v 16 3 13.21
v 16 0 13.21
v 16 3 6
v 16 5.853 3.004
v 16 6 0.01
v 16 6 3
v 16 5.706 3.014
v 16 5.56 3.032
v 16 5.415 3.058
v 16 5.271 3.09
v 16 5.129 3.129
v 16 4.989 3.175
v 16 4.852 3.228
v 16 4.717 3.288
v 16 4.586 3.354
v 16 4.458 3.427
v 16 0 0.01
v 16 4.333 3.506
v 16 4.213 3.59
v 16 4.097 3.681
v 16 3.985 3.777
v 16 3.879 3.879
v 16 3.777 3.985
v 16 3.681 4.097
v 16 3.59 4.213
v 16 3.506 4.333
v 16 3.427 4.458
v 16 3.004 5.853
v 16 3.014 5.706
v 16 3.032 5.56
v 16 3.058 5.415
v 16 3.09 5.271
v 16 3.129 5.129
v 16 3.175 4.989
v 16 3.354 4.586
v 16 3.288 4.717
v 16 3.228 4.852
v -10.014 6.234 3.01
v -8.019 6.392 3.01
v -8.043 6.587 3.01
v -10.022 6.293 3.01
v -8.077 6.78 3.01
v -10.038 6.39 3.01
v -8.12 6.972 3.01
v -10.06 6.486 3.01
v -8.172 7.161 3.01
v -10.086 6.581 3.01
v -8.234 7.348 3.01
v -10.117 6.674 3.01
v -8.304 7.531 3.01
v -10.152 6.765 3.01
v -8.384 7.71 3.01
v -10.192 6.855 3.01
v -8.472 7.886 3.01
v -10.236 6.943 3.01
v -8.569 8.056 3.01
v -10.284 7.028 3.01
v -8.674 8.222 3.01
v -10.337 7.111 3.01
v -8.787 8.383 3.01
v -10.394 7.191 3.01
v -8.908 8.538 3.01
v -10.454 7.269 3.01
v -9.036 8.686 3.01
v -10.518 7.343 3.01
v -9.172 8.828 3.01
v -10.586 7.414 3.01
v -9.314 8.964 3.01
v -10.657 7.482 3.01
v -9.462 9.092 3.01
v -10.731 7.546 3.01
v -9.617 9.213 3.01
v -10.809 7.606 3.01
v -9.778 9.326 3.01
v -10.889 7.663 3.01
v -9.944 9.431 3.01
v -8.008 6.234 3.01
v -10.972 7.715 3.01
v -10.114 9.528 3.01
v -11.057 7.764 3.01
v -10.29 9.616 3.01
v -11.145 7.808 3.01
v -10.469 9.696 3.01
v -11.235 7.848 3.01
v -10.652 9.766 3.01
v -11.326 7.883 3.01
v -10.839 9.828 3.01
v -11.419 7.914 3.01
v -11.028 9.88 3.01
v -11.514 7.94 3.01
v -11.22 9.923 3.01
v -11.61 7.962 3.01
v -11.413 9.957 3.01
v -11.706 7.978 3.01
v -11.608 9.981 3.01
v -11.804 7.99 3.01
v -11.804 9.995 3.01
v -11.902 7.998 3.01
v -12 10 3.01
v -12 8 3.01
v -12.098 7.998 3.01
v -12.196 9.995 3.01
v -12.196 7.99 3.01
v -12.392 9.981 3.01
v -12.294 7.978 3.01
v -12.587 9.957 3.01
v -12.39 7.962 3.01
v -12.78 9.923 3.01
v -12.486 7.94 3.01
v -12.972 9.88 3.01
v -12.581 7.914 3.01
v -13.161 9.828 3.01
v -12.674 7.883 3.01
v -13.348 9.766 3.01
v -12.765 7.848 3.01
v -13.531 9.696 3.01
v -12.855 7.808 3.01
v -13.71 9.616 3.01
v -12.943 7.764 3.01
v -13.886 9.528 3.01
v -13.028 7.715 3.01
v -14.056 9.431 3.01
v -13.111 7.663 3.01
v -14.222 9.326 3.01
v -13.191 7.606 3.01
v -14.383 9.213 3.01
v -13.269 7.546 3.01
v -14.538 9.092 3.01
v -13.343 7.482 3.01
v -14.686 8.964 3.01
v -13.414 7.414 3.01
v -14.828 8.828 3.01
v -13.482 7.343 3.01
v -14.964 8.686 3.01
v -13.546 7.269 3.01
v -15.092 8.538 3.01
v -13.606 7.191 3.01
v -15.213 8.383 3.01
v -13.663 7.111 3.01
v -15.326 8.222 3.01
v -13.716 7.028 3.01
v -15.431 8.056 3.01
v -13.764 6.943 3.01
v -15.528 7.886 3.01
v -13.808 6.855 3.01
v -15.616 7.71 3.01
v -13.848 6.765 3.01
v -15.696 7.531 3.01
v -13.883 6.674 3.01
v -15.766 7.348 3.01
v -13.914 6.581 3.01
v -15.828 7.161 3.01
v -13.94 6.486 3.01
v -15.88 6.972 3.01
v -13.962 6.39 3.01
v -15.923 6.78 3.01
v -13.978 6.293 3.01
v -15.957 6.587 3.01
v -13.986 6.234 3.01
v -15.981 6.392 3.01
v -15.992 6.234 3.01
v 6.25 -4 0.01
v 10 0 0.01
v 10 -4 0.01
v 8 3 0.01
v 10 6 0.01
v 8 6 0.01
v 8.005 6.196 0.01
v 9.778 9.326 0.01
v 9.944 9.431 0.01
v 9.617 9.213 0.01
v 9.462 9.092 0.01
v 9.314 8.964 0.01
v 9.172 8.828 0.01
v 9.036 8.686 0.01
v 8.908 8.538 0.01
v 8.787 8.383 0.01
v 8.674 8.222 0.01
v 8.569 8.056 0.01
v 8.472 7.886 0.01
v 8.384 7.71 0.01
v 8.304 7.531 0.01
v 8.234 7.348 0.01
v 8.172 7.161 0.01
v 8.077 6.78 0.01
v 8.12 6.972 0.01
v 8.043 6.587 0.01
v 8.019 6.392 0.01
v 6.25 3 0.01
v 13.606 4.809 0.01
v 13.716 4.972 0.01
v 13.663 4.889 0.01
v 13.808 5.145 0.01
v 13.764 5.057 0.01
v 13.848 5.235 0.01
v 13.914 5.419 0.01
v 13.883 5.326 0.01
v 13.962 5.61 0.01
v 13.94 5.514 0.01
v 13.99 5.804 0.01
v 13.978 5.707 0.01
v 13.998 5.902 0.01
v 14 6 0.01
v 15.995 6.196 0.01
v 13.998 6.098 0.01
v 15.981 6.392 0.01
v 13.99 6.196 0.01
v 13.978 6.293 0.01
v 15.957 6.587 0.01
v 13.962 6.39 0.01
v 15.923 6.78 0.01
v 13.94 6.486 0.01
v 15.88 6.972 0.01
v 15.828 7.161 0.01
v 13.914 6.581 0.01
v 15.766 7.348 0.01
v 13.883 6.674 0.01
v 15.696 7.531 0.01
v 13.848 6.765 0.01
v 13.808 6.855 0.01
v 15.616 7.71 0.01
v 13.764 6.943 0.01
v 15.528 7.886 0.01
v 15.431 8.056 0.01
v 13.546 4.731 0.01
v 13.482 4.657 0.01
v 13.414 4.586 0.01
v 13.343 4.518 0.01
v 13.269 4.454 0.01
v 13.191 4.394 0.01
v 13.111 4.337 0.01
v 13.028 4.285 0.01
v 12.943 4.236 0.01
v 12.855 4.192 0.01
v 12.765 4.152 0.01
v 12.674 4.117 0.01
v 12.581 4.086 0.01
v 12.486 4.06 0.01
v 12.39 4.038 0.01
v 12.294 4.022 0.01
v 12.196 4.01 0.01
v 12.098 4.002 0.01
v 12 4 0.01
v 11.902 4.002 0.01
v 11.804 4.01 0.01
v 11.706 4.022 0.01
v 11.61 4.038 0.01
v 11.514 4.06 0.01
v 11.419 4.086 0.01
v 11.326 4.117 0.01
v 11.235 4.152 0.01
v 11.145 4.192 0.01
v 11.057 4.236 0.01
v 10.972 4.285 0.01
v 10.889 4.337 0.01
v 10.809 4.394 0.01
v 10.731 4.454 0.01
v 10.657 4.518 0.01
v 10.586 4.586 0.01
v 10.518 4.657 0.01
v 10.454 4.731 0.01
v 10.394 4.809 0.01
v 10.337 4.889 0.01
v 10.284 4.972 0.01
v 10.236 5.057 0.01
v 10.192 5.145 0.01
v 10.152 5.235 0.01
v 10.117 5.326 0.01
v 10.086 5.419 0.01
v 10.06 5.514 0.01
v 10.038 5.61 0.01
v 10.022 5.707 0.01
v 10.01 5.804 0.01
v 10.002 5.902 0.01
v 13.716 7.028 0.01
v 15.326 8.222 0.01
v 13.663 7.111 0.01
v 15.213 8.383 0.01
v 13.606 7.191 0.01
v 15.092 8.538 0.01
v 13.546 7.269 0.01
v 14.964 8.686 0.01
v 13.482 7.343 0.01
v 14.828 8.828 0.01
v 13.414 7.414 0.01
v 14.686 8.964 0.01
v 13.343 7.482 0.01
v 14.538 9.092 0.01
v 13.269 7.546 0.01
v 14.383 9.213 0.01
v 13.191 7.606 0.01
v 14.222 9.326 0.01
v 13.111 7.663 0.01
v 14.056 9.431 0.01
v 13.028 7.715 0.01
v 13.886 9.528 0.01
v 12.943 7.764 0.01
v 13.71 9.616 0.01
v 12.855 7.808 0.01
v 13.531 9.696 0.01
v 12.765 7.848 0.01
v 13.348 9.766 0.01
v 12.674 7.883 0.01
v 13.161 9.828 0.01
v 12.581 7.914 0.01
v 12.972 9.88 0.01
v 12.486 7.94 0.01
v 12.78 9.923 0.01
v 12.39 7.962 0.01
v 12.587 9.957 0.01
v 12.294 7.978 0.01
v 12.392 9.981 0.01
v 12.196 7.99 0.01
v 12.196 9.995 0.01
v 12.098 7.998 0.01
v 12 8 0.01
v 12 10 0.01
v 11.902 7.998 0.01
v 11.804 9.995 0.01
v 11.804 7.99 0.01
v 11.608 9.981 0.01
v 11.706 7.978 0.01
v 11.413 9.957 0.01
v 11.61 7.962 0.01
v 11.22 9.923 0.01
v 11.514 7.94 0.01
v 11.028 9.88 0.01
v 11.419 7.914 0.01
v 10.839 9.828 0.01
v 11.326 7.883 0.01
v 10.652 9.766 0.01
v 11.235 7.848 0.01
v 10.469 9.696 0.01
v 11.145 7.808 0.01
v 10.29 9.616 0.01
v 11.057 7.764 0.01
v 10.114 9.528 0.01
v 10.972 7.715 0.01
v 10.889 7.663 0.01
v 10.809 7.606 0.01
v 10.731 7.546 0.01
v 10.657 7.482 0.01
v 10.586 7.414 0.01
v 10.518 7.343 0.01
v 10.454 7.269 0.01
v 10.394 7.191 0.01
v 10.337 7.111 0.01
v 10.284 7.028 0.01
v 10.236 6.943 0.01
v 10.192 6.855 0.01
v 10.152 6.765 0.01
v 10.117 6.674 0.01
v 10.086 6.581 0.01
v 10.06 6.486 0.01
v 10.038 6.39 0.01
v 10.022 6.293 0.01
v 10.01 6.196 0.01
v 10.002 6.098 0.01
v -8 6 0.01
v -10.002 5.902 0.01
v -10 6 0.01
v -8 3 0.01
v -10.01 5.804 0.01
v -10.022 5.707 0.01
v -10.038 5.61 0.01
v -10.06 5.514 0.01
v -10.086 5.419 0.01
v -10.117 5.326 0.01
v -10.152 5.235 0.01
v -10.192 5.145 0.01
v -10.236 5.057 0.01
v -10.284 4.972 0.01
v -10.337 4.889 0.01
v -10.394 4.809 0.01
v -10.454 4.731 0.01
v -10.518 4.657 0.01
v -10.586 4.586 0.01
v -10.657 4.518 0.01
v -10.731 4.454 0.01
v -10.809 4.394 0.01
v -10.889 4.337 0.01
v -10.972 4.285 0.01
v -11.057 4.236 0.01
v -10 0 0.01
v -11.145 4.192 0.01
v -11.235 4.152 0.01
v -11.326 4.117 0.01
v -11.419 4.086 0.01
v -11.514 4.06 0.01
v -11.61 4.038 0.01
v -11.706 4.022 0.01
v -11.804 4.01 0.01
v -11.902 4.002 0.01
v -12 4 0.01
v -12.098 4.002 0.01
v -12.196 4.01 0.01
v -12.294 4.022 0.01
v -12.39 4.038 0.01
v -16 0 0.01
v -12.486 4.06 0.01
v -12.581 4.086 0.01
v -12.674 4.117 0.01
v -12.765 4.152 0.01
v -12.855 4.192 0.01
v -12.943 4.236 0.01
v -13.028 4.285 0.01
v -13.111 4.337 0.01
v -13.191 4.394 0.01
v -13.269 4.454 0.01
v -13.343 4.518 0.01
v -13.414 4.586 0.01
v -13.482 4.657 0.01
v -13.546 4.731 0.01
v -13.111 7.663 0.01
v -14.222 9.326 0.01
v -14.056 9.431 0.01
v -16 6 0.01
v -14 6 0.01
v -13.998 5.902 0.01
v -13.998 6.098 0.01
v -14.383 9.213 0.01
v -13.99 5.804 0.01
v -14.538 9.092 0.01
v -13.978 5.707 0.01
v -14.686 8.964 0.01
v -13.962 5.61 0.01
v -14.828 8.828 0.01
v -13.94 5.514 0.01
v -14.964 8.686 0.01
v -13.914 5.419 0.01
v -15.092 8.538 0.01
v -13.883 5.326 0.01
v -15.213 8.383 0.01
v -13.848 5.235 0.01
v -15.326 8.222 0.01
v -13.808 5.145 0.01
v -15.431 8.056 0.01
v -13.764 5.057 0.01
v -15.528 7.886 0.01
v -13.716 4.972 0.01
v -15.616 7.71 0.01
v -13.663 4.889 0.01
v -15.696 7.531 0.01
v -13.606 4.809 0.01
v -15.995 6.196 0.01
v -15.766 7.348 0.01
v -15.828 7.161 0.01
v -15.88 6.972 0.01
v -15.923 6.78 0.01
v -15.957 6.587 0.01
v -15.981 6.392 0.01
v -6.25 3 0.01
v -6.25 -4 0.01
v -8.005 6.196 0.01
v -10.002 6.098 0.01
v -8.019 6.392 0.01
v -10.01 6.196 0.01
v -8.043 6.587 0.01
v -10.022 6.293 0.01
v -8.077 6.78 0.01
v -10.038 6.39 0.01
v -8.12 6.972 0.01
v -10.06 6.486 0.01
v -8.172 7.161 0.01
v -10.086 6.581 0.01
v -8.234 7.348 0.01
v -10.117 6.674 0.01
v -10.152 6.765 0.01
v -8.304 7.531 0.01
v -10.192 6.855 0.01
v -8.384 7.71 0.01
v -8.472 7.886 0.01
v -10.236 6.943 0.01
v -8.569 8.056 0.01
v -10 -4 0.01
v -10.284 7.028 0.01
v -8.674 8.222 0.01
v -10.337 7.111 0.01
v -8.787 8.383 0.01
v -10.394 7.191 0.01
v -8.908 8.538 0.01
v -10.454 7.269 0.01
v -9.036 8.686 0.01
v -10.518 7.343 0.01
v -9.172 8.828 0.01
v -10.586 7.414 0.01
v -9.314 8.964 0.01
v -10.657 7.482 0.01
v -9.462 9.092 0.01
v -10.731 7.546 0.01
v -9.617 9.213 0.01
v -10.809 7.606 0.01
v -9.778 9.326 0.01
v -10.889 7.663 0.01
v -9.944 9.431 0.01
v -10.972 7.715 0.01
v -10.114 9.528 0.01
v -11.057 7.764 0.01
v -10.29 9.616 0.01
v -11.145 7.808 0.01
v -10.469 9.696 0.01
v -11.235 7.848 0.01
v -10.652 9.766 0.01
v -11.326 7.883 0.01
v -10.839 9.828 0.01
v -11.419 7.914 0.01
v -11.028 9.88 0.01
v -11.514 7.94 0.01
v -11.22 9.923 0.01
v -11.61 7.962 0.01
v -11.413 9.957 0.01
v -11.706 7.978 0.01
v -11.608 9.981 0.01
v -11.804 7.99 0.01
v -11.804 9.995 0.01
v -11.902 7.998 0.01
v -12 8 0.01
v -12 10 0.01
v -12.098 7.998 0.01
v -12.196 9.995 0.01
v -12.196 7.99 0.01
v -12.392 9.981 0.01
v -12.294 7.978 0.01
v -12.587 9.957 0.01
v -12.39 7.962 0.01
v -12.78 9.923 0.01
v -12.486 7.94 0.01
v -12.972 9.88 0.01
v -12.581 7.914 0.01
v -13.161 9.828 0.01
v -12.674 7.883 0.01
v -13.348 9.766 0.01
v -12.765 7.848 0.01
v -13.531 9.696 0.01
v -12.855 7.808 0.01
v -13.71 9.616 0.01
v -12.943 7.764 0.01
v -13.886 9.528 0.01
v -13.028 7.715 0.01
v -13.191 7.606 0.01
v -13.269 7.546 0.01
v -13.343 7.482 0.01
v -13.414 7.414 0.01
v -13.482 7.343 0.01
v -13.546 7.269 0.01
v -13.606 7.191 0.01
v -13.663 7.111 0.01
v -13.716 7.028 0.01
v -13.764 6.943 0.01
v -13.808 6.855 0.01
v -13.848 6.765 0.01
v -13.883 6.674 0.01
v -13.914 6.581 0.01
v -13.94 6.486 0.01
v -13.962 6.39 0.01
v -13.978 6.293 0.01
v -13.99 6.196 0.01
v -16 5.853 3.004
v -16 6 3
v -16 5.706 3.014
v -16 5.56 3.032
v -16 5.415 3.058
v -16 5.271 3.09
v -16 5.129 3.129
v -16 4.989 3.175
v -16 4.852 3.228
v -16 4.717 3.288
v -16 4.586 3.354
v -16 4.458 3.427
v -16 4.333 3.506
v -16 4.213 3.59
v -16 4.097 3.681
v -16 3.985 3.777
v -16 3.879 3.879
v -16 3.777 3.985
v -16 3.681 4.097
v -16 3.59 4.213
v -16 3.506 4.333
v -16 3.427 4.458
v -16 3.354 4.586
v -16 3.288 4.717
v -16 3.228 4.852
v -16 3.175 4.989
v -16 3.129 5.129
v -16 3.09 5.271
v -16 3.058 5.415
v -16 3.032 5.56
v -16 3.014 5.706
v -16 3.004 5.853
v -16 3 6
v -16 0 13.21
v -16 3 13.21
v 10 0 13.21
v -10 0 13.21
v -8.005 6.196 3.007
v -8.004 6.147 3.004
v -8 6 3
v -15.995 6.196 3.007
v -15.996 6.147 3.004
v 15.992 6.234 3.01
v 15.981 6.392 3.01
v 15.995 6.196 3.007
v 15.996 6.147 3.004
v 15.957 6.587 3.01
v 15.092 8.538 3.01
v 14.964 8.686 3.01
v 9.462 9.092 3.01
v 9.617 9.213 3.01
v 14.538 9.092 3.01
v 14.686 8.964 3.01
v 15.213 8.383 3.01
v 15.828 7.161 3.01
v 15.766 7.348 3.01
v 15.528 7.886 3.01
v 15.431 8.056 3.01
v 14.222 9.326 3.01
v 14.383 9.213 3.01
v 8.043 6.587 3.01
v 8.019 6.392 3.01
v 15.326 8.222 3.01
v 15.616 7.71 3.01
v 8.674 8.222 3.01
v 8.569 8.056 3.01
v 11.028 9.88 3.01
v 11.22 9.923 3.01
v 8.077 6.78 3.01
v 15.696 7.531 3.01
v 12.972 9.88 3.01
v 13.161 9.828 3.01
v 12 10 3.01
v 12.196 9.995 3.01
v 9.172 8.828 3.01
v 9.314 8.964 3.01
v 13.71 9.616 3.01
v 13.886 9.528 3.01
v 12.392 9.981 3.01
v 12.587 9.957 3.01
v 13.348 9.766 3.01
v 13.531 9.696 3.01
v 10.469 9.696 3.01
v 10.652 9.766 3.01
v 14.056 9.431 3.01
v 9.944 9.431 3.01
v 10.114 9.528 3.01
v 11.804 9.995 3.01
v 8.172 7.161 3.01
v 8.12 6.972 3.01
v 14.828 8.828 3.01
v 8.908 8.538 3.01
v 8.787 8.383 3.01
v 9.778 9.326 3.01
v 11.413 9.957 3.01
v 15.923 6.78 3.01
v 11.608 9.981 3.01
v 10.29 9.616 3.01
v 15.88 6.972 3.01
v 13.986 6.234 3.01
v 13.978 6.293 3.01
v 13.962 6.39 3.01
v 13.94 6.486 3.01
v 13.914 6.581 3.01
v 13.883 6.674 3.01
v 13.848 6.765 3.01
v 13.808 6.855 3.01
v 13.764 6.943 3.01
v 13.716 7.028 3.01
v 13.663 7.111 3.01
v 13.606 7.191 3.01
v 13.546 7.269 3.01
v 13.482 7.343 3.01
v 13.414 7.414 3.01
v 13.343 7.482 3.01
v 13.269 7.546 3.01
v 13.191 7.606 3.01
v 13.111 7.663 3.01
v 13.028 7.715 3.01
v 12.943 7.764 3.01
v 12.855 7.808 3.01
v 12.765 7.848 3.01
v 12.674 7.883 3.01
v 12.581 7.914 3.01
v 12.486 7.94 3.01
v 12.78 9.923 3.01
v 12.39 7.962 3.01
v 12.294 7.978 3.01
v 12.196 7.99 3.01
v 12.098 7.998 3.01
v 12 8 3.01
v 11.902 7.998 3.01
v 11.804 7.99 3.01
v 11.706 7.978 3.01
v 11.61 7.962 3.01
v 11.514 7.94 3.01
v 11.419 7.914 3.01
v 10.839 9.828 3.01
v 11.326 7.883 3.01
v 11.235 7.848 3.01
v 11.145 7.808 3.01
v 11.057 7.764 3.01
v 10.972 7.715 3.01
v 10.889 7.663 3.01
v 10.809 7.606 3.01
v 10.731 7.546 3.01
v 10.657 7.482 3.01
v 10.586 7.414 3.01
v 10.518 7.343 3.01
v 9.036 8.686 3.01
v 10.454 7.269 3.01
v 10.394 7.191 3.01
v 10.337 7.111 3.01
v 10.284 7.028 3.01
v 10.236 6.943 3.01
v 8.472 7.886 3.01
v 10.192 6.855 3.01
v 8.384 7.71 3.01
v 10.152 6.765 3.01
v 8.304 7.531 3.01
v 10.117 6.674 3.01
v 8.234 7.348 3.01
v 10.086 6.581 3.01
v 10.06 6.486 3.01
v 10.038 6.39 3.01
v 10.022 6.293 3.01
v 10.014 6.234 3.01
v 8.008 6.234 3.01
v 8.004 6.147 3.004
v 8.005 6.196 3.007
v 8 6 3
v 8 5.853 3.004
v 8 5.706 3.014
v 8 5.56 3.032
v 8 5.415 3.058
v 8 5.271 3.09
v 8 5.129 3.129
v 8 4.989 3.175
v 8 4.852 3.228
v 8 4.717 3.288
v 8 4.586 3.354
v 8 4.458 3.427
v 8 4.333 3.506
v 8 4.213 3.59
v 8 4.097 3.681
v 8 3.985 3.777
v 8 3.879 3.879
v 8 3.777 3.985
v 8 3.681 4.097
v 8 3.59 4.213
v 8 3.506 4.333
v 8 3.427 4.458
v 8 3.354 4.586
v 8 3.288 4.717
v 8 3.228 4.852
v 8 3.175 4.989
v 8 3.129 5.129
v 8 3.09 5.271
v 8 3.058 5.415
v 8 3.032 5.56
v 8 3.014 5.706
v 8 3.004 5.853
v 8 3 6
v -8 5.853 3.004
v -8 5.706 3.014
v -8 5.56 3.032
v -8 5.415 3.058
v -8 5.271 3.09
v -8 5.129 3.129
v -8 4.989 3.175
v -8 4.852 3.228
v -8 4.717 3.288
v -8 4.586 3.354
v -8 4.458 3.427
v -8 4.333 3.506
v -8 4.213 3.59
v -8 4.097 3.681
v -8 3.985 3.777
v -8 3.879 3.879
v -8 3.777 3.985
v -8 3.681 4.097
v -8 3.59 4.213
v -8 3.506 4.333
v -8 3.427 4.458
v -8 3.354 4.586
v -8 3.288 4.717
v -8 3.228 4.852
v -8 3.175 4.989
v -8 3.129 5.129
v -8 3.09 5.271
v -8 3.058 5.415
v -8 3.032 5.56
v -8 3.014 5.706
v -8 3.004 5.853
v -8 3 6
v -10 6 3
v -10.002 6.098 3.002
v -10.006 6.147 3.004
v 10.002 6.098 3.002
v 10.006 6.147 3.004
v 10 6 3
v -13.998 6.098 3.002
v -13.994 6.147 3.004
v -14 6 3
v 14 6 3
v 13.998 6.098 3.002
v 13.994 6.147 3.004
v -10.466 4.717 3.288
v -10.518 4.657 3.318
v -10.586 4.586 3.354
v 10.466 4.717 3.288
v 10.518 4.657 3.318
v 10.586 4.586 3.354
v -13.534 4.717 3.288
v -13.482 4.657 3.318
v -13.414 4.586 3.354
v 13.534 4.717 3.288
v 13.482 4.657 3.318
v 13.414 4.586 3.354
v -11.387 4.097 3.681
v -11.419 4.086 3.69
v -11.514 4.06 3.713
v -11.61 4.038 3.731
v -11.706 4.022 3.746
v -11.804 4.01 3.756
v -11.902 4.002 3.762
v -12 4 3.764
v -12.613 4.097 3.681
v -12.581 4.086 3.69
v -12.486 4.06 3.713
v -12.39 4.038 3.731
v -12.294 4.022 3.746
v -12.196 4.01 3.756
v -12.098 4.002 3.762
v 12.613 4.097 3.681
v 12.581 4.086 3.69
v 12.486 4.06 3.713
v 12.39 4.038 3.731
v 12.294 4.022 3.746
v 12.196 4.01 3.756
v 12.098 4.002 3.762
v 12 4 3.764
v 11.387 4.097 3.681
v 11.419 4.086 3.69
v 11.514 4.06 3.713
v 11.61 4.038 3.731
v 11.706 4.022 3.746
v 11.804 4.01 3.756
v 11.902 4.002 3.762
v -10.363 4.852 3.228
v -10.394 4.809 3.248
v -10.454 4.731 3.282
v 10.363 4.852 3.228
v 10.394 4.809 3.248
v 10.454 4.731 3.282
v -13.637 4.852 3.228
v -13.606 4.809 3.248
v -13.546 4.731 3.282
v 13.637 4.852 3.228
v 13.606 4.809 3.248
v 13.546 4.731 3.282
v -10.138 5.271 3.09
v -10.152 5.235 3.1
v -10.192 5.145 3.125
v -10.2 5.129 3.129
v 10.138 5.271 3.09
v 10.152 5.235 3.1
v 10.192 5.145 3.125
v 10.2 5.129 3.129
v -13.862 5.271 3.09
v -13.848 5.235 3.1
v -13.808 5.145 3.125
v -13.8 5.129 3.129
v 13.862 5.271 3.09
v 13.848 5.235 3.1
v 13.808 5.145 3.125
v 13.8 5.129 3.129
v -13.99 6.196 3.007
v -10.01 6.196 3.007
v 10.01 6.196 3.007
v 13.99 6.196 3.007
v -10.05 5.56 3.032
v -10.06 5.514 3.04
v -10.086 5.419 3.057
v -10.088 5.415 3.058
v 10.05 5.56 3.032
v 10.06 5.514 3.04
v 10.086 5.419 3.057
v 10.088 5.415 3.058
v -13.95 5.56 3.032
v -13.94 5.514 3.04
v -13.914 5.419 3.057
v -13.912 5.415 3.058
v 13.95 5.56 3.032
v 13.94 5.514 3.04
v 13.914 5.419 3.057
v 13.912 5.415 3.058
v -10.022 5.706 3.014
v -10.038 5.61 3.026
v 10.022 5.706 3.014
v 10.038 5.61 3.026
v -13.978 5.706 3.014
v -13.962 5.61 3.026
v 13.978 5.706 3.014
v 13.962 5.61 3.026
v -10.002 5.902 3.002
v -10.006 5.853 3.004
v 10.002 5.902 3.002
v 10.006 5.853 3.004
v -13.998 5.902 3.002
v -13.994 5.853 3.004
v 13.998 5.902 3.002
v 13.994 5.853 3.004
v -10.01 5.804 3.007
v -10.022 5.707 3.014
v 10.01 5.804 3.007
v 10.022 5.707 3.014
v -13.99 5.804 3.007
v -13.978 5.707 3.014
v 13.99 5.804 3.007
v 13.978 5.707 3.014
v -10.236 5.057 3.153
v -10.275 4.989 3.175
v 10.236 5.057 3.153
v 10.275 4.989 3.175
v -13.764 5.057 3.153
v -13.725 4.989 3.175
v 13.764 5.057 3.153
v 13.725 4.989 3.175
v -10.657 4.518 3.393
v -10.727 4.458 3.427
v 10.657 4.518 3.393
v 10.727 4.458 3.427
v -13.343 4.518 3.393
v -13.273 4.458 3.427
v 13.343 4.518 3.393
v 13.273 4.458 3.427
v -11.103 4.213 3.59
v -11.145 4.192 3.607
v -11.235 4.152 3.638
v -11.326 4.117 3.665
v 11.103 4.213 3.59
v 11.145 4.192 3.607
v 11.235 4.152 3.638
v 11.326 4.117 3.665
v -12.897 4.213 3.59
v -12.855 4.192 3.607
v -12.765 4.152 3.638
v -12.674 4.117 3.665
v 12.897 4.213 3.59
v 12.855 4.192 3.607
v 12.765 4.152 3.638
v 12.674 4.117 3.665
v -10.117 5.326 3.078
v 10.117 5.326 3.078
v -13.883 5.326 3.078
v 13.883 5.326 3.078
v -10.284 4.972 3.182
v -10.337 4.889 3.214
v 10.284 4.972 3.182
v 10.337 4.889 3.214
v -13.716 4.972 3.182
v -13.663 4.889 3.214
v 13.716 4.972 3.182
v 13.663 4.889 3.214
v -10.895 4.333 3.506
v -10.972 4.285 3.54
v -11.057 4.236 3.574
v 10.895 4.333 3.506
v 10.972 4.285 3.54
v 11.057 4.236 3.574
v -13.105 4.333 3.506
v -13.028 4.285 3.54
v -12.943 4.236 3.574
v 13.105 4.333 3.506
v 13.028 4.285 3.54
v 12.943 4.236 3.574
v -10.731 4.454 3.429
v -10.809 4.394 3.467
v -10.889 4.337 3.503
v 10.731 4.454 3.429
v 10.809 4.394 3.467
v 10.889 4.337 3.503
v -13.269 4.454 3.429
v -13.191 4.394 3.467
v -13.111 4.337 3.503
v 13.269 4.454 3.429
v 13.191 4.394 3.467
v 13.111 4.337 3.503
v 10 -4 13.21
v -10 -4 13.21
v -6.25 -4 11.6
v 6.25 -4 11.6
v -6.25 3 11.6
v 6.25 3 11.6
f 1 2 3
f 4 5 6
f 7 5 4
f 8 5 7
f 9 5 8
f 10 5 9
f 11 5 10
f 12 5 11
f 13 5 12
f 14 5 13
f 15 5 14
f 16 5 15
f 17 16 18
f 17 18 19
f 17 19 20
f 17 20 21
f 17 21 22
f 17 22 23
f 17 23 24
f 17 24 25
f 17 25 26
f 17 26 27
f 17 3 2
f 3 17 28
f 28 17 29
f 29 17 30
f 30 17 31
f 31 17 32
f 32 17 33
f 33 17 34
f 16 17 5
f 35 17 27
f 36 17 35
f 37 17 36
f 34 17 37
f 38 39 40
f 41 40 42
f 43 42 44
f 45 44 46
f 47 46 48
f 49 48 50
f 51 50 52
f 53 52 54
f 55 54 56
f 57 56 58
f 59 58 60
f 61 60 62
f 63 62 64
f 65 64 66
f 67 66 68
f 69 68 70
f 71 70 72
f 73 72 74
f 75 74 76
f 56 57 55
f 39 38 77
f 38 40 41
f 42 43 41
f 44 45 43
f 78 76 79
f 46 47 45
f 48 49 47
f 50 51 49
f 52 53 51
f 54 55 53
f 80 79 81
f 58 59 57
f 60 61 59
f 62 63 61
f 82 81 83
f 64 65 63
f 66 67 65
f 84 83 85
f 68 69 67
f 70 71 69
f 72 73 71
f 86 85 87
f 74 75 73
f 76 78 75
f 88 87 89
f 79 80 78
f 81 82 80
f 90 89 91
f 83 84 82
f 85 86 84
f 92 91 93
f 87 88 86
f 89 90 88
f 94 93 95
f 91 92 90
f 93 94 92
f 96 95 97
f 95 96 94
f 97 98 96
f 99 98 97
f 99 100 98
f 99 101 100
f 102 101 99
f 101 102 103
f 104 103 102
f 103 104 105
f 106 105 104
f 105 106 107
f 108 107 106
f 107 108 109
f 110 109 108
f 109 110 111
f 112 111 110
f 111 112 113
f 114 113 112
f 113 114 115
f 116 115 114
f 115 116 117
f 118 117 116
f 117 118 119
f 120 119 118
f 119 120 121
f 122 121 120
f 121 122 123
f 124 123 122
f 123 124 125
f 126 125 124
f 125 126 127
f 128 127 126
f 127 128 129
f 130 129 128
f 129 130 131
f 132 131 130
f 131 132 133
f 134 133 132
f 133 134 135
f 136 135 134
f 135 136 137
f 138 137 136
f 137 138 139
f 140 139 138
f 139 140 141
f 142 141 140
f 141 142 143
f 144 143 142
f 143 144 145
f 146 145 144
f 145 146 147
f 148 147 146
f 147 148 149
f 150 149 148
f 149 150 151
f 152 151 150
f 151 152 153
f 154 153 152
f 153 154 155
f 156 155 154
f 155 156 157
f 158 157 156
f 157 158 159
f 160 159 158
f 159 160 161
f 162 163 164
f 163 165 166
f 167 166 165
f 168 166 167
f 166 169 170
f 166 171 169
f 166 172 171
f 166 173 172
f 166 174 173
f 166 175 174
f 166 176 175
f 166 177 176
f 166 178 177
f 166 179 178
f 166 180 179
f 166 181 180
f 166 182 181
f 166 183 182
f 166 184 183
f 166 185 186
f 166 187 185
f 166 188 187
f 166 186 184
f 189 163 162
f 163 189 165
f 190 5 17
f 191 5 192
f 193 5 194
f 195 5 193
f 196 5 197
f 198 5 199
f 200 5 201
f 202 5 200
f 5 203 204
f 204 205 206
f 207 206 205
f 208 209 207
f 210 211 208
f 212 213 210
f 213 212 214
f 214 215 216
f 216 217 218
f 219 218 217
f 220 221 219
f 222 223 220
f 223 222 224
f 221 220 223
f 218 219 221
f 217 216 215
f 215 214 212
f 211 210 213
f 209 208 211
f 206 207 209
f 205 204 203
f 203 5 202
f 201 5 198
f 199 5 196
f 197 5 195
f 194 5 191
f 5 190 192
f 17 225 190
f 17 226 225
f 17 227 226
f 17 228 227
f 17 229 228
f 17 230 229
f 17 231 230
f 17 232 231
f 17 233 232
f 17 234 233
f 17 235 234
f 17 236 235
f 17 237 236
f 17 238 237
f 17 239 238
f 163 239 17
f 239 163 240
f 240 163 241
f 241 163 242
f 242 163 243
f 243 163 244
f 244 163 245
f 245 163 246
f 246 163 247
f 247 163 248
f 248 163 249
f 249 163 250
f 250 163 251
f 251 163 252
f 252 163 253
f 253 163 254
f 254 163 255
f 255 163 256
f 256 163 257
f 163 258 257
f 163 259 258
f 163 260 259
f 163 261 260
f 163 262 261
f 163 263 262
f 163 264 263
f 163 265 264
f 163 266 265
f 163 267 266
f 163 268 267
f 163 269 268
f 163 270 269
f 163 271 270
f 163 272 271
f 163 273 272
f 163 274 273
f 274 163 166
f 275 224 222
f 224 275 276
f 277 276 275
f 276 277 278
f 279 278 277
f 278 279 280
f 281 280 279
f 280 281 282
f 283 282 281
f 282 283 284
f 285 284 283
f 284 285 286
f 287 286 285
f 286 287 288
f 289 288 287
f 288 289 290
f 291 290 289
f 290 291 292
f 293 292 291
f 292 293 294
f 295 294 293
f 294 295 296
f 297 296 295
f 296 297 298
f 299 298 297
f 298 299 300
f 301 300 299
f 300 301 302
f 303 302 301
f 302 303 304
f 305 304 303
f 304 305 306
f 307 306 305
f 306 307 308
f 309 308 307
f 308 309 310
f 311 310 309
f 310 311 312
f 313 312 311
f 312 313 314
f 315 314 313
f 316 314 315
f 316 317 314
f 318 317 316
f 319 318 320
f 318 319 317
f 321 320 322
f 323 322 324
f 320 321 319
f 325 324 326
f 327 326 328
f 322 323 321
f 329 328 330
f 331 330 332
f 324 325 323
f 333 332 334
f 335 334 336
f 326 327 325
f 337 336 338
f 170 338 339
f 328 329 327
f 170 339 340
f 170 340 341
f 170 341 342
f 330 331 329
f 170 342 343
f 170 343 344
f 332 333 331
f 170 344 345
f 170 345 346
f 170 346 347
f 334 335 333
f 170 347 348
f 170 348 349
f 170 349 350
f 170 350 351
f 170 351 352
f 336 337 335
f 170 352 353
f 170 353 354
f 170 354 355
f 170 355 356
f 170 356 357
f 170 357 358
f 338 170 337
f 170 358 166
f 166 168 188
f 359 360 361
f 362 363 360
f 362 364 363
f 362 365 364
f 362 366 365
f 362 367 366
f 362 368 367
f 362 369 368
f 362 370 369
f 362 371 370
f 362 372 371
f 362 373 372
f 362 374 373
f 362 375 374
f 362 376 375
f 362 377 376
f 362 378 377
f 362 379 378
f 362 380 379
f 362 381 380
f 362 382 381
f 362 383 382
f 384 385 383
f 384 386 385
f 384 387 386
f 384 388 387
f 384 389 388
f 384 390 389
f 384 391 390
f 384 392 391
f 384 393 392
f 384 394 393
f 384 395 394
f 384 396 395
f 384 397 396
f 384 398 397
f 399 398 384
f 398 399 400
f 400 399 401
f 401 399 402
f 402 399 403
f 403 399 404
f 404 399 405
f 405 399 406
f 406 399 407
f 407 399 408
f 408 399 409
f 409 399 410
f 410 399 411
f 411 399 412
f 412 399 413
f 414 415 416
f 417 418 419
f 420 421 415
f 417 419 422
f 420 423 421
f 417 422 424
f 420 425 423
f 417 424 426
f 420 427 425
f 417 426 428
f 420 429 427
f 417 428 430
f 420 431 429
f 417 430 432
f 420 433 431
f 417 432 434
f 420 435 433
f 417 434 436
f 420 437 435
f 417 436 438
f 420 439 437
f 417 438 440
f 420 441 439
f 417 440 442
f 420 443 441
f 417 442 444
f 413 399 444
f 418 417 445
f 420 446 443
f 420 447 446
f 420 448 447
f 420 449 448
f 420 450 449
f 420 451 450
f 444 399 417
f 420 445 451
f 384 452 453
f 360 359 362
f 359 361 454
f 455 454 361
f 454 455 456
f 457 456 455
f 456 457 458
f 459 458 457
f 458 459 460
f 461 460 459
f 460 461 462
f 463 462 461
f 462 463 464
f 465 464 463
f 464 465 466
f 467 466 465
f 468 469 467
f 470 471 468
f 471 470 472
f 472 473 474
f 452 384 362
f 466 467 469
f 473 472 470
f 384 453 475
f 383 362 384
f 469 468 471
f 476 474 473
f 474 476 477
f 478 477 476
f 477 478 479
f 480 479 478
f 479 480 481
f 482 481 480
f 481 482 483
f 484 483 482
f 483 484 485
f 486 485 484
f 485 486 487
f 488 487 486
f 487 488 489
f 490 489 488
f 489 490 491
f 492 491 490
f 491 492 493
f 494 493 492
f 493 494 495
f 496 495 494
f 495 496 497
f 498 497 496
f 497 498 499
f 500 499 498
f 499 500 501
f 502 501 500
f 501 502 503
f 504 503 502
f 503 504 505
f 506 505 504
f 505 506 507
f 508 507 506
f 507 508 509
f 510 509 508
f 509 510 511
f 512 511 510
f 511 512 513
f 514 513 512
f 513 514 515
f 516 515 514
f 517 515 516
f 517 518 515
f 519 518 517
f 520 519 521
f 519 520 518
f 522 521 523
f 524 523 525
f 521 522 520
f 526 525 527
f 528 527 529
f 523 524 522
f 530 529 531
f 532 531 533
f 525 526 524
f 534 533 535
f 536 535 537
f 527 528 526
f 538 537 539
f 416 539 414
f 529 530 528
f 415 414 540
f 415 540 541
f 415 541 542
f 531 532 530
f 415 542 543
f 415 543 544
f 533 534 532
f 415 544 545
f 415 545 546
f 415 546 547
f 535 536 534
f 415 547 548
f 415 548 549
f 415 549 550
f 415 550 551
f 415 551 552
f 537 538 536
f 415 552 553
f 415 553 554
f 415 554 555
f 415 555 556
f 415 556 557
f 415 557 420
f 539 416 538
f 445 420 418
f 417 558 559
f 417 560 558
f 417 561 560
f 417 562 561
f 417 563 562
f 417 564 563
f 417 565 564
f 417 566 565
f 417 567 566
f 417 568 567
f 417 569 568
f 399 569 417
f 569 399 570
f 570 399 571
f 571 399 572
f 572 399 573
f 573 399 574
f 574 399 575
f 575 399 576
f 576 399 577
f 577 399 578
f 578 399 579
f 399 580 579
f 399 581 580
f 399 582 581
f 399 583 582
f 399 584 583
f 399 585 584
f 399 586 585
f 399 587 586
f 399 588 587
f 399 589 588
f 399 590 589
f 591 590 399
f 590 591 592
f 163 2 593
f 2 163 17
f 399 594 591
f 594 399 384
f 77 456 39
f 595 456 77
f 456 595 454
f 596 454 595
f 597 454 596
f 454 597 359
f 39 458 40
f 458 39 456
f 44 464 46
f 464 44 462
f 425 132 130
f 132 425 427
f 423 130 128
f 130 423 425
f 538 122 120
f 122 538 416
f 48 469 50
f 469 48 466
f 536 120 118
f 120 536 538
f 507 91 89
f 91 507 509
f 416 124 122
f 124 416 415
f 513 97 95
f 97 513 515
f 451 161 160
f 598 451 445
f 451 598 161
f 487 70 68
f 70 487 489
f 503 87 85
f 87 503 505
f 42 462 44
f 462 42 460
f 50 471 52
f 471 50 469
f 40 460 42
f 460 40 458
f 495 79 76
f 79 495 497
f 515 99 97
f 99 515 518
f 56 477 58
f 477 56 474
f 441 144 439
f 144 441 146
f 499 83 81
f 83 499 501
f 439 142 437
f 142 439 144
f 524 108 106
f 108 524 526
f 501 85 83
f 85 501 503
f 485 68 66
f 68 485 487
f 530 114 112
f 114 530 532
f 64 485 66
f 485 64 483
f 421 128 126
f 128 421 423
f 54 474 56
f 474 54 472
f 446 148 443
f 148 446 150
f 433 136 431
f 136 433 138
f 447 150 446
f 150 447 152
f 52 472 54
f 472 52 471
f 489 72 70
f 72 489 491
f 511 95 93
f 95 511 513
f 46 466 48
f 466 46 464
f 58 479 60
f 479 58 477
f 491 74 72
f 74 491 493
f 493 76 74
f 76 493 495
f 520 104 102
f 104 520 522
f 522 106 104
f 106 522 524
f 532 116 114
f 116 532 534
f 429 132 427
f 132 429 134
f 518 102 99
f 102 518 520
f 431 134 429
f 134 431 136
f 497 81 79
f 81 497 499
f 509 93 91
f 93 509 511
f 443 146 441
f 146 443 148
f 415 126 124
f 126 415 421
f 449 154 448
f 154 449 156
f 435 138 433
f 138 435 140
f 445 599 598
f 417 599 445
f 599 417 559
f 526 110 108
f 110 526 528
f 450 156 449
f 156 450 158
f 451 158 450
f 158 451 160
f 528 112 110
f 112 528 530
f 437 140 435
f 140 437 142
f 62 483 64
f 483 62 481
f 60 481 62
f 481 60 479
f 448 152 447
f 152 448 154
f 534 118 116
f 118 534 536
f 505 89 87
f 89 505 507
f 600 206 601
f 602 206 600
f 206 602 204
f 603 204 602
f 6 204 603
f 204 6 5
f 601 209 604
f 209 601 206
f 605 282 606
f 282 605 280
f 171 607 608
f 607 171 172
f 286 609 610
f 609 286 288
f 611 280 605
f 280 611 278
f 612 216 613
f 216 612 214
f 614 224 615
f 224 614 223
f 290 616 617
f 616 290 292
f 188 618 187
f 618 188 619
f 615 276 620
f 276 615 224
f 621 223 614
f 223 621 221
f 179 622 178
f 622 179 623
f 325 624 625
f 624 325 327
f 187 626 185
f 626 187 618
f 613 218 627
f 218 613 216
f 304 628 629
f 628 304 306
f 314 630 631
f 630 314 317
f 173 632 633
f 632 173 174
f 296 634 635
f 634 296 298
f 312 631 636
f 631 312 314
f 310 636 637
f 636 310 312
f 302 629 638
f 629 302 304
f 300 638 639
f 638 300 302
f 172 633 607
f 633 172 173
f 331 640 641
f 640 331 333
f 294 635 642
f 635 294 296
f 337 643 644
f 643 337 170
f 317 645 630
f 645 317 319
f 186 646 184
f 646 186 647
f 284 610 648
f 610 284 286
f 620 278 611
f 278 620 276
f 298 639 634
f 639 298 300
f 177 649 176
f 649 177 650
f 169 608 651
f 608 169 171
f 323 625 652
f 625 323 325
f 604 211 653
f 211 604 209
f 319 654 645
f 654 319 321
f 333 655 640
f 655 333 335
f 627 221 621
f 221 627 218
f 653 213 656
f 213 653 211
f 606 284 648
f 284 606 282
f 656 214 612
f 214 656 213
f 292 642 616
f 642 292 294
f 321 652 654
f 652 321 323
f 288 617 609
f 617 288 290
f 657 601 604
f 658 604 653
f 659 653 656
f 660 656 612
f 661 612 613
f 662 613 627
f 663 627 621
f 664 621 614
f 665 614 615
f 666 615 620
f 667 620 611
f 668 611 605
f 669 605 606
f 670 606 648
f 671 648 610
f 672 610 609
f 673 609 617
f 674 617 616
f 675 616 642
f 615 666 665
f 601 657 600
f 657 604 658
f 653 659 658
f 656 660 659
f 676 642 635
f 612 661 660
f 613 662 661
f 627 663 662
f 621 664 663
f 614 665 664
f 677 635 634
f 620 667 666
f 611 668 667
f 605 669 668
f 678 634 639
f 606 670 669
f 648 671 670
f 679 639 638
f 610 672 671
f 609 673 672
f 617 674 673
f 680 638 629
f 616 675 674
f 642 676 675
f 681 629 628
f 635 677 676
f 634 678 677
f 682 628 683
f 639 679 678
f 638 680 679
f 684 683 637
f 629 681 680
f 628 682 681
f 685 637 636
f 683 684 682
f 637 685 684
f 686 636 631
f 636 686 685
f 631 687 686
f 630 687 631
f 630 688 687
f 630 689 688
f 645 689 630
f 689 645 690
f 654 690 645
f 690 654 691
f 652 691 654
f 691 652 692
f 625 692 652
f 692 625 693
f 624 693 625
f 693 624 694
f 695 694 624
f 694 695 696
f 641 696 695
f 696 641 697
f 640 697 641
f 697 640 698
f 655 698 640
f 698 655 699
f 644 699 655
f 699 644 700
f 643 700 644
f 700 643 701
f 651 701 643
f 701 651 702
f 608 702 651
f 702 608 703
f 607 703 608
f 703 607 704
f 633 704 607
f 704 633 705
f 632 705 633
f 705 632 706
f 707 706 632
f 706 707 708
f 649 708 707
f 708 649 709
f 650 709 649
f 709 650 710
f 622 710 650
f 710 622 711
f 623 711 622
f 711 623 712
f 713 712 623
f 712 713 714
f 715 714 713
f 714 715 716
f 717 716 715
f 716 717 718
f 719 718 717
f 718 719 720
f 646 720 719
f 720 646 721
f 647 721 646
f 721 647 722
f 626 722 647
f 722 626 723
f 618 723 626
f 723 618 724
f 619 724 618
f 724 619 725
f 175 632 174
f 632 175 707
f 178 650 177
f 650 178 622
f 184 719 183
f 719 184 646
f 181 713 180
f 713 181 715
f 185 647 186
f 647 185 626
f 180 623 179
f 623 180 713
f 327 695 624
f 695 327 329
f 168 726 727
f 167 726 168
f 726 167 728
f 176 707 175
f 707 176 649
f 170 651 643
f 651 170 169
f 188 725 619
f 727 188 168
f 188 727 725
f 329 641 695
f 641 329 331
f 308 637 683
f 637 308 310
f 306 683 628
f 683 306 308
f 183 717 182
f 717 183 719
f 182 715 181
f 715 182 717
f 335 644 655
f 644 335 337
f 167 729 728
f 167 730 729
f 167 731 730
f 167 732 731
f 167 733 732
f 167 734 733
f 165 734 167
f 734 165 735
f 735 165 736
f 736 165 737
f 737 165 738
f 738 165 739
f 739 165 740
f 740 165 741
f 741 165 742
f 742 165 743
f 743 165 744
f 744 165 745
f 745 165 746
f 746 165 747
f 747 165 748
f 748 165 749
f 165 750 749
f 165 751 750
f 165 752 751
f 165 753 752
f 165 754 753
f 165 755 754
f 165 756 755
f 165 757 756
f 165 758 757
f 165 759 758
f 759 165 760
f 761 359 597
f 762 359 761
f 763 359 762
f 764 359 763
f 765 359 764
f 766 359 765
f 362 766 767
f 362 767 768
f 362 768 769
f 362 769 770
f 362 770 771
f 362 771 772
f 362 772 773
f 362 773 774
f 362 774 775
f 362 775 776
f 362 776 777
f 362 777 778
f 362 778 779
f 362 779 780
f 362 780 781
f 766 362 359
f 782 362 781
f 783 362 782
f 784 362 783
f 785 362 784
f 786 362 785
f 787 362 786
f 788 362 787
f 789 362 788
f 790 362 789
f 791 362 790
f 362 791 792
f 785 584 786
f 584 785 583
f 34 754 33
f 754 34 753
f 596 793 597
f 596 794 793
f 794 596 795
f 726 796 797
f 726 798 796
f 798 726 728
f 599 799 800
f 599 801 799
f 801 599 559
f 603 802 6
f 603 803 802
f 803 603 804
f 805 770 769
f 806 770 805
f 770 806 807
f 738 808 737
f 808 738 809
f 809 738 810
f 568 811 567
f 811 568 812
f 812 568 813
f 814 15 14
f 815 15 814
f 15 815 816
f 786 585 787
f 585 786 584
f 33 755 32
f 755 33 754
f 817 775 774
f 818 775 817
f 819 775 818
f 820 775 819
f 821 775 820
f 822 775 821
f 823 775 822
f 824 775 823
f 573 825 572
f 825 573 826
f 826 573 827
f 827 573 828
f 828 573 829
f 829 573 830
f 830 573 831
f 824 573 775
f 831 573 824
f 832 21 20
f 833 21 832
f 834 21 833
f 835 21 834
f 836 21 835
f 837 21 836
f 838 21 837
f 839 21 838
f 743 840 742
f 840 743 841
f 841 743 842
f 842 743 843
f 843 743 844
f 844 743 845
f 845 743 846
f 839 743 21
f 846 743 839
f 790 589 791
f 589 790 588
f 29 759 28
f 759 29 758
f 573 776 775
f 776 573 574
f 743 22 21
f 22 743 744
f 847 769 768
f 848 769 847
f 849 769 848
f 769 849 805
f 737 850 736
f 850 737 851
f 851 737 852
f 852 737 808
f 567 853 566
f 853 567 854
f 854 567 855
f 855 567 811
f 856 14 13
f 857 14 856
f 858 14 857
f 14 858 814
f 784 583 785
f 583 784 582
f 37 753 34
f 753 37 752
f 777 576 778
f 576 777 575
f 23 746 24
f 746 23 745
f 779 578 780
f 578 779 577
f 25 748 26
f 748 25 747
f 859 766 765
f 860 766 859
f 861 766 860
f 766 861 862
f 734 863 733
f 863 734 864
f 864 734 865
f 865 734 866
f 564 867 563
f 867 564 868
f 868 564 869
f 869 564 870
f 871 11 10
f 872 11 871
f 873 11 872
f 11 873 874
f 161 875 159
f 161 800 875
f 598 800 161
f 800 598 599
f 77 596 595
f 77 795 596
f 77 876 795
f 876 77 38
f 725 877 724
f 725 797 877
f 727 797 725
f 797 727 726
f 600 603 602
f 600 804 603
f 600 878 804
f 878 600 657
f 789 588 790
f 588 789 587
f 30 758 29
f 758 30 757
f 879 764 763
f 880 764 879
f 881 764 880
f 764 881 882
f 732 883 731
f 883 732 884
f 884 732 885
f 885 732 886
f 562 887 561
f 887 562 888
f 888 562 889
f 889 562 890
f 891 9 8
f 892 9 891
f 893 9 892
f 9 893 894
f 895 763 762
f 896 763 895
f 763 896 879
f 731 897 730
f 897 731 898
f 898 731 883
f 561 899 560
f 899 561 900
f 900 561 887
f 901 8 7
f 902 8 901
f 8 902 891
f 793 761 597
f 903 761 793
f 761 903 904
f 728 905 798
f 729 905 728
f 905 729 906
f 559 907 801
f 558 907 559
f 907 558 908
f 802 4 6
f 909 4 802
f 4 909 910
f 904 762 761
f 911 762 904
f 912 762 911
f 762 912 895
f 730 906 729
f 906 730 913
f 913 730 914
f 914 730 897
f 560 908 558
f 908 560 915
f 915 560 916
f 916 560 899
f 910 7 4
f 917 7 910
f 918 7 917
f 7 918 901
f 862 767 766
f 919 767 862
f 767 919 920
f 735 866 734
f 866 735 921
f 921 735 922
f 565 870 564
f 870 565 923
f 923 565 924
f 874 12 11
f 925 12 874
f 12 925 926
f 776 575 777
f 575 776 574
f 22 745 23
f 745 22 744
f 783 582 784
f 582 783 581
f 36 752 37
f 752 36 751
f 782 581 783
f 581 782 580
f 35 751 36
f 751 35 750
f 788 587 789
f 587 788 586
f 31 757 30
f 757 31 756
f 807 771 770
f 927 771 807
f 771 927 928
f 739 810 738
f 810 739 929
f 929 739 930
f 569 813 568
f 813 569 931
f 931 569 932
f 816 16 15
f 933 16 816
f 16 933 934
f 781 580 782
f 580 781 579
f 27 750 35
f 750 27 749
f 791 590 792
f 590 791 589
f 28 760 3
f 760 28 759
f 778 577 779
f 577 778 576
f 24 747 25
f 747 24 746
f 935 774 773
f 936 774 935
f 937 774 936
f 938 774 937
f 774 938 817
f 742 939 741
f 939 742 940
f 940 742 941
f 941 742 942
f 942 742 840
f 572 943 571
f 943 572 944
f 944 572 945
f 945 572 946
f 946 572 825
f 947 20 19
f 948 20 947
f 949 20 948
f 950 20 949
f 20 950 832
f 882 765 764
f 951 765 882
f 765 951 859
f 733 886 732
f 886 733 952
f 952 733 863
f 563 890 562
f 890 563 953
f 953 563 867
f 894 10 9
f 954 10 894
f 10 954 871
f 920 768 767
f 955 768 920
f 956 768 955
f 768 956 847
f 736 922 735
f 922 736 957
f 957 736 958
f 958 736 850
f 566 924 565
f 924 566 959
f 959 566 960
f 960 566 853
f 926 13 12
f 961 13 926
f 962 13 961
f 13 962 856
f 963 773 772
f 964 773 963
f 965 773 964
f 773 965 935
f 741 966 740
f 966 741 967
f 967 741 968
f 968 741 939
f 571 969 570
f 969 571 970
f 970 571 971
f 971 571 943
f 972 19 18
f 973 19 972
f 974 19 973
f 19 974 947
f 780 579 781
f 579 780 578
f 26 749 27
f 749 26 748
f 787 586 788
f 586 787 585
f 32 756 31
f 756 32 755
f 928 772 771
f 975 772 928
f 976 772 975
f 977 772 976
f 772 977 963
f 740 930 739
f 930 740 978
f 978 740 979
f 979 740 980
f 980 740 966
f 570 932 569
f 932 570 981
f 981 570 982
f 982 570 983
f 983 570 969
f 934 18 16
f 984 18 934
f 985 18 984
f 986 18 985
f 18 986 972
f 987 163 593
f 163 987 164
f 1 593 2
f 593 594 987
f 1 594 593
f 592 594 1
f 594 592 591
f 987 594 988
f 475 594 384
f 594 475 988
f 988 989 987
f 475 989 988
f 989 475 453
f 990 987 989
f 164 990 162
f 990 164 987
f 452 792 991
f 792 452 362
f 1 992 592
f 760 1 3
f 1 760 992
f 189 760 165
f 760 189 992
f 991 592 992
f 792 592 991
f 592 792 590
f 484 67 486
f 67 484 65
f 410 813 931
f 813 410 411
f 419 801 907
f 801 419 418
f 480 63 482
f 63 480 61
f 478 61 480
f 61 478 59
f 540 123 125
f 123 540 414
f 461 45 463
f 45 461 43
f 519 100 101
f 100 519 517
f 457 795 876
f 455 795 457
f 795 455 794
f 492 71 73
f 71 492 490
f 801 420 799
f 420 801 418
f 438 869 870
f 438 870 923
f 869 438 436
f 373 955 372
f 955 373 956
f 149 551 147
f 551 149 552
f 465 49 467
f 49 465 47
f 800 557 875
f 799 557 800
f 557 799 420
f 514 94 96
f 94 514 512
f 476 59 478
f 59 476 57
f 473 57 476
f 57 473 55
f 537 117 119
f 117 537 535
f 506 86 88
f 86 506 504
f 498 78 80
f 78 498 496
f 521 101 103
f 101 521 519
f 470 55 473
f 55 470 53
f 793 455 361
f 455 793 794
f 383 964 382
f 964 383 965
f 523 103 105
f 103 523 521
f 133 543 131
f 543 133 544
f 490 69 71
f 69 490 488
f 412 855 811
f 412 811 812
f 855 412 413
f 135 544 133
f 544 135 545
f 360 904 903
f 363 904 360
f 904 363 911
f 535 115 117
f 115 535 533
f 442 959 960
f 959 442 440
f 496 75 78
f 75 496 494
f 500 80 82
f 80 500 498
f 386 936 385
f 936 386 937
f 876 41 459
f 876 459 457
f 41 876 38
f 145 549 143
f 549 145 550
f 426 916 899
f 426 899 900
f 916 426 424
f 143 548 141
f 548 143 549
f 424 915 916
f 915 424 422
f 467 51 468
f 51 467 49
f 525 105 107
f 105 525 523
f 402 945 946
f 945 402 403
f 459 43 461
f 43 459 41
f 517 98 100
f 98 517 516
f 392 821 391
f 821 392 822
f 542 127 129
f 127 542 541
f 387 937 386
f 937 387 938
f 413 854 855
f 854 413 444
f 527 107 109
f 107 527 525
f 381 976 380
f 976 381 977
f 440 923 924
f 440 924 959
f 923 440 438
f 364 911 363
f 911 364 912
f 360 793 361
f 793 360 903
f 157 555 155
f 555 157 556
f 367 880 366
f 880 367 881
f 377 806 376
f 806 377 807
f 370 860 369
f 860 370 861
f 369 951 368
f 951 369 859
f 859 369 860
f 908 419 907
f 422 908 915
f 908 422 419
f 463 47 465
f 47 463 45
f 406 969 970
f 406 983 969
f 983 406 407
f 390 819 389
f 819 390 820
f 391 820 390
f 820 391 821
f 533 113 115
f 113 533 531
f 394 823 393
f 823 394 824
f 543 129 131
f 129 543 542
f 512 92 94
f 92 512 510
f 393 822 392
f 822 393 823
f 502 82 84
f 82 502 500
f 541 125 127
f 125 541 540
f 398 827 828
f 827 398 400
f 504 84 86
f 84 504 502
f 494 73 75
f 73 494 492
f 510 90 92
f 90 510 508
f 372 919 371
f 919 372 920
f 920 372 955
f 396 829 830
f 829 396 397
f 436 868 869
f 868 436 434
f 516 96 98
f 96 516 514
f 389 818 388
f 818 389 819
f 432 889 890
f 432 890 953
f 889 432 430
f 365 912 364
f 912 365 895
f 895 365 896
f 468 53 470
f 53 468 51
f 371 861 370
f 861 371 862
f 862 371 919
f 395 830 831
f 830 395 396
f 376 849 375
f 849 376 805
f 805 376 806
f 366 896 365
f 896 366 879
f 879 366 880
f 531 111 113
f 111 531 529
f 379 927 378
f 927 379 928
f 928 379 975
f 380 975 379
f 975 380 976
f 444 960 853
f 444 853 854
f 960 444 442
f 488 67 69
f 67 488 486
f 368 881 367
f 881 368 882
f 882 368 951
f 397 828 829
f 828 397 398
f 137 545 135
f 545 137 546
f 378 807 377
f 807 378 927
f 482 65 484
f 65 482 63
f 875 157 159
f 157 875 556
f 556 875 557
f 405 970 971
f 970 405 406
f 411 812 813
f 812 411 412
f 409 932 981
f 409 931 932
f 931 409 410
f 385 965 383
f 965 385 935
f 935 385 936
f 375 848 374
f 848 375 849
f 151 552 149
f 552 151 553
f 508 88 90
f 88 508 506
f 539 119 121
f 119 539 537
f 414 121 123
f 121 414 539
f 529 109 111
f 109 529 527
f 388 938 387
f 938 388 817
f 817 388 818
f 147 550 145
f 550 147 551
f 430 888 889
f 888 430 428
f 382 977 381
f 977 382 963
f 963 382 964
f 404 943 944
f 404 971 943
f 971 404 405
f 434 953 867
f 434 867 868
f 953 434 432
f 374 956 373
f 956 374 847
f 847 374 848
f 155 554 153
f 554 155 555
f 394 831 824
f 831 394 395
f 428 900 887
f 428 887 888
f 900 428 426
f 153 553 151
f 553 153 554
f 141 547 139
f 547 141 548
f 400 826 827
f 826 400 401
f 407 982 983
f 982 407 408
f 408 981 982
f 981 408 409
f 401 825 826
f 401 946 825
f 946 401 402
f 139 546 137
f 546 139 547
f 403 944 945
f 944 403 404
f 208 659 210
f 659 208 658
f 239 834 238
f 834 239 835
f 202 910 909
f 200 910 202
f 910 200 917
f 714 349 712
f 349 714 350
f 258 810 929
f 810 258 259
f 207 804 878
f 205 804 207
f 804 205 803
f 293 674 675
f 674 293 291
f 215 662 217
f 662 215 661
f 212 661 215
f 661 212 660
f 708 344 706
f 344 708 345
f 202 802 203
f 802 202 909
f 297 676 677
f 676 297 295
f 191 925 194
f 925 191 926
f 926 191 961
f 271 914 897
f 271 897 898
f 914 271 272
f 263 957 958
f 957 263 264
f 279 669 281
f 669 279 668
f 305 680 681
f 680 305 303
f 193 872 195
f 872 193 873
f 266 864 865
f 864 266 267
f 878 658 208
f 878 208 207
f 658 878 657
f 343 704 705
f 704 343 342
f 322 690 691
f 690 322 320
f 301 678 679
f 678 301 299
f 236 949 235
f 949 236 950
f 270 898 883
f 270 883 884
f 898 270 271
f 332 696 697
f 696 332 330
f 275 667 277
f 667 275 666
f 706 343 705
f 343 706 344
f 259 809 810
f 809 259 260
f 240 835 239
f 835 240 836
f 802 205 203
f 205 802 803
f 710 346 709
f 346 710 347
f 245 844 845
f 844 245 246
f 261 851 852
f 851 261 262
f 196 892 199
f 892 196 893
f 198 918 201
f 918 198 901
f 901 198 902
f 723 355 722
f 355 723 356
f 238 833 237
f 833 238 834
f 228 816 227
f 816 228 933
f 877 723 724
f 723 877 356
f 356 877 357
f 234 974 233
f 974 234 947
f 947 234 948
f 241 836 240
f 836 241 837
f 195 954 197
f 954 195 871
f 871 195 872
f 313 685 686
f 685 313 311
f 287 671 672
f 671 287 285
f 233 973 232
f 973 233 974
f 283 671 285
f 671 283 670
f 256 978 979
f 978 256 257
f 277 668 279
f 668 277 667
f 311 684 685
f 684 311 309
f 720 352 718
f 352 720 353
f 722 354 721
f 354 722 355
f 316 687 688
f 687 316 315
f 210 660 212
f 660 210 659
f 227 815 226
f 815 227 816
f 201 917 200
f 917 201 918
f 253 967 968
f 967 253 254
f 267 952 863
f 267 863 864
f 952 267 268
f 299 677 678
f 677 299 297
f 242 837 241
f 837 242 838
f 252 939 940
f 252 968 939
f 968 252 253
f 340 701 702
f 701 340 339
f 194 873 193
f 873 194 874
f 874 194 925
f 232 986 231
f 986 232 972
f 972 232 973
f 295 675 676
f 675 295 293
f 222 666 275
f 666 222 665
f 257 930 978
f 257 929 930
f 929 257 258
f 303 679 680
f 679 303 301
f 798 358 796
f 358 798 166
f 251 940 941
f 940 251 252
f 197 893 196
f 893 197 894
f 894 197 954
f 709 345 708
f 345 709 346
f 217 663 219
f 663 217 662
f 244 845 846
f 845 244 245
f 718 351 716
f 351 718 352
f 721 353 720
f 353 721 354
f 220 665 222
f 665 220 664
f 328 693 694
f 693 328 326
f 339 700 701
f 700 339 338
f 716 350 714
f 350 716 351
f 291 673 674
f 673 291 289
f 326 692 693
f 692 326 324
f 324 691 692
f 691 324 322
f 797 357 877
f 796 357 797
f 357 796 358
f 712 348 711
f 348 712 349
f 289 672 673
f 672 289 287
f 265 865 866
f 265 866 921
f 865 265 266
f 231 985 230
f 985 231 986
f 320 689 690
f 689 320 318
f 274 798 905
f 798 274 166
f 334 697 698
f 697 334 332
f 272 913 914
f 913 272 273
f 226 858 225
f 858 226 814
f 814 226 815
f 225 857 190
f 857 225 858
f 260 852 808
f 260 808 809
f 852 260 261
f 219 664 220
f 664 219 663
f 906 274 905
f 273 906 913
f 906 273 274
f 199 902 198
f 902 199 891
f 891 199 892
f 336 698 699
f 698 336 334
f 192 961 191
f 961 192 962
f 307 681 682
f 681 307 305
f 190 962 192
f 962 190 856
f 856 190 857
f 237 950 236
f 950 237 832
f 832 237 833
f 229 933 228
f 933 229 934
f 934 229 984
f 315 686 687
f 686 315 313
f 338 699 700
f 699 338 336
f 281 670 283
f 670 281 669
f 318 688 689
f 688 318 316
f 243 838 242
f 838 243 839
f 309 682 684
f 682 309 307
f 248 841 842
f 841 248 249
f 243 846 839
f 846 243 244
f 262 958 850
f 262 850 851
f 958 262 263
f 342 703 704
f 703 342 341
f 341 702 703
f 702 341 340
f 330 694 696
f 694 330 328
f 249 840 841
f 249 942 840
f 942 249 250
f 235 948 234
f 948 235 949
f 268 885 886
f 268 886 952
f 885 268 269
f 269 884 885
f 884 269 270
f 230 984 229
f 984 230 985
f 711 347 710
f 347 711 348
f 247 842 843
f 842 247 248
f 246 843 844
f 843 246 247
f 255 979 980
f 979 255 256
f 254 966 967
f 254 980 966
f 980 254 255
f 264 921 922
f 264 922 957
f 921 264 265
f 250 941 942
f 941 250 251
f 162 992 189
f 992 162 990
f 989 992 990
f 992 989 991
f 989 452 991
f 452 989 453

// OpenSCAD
$fn = 128;

total_height = 13.2;

usb_port_width = 12.5;
usb_port_height = 11.6;

module usb_port() {
	translate([-(usb_port_width / 2), -5,0])
		cube([usb_port_width, 18, usb_port_height]);
}

module pegs() {
	translate([-12,6,0])
		cylinder(10, 2, 2);
	translate([12,6,0])
		cylinder(10, 2, 2);
}

module outer() {
	translate([-10, -4, 0.01])
		cube([20, 4, total_height]);
}

module inner() {
	translate([-16, 0, 0.01])
		cube([32, 3, total_height]);
}

module base() {
	difference() {
		union() {
			translate([-16, 0, 0.01])
				cube([32, 6, 3]);
			translate([-12,6,0.01])
				cylinder(3, 4, 4);
			translate([12,6,0.01])
				cylinder(3, 4, 4);

			translate([-16, 0, 3])
				cube([32, 6, 3]);
		}
		union() {
			translate([-8,-5,0])
				cube([16, 18, 11]);

			translate([-16.1,6,6]) {
				rotate([0,90,0]) {
					cylinder(33, 3, 3);
				}
			}
		}
	}
}


module fill() {
	outer();
	inner();
	base();
}

difference() {
	fill();
	usb_port();
	pegs();
}
